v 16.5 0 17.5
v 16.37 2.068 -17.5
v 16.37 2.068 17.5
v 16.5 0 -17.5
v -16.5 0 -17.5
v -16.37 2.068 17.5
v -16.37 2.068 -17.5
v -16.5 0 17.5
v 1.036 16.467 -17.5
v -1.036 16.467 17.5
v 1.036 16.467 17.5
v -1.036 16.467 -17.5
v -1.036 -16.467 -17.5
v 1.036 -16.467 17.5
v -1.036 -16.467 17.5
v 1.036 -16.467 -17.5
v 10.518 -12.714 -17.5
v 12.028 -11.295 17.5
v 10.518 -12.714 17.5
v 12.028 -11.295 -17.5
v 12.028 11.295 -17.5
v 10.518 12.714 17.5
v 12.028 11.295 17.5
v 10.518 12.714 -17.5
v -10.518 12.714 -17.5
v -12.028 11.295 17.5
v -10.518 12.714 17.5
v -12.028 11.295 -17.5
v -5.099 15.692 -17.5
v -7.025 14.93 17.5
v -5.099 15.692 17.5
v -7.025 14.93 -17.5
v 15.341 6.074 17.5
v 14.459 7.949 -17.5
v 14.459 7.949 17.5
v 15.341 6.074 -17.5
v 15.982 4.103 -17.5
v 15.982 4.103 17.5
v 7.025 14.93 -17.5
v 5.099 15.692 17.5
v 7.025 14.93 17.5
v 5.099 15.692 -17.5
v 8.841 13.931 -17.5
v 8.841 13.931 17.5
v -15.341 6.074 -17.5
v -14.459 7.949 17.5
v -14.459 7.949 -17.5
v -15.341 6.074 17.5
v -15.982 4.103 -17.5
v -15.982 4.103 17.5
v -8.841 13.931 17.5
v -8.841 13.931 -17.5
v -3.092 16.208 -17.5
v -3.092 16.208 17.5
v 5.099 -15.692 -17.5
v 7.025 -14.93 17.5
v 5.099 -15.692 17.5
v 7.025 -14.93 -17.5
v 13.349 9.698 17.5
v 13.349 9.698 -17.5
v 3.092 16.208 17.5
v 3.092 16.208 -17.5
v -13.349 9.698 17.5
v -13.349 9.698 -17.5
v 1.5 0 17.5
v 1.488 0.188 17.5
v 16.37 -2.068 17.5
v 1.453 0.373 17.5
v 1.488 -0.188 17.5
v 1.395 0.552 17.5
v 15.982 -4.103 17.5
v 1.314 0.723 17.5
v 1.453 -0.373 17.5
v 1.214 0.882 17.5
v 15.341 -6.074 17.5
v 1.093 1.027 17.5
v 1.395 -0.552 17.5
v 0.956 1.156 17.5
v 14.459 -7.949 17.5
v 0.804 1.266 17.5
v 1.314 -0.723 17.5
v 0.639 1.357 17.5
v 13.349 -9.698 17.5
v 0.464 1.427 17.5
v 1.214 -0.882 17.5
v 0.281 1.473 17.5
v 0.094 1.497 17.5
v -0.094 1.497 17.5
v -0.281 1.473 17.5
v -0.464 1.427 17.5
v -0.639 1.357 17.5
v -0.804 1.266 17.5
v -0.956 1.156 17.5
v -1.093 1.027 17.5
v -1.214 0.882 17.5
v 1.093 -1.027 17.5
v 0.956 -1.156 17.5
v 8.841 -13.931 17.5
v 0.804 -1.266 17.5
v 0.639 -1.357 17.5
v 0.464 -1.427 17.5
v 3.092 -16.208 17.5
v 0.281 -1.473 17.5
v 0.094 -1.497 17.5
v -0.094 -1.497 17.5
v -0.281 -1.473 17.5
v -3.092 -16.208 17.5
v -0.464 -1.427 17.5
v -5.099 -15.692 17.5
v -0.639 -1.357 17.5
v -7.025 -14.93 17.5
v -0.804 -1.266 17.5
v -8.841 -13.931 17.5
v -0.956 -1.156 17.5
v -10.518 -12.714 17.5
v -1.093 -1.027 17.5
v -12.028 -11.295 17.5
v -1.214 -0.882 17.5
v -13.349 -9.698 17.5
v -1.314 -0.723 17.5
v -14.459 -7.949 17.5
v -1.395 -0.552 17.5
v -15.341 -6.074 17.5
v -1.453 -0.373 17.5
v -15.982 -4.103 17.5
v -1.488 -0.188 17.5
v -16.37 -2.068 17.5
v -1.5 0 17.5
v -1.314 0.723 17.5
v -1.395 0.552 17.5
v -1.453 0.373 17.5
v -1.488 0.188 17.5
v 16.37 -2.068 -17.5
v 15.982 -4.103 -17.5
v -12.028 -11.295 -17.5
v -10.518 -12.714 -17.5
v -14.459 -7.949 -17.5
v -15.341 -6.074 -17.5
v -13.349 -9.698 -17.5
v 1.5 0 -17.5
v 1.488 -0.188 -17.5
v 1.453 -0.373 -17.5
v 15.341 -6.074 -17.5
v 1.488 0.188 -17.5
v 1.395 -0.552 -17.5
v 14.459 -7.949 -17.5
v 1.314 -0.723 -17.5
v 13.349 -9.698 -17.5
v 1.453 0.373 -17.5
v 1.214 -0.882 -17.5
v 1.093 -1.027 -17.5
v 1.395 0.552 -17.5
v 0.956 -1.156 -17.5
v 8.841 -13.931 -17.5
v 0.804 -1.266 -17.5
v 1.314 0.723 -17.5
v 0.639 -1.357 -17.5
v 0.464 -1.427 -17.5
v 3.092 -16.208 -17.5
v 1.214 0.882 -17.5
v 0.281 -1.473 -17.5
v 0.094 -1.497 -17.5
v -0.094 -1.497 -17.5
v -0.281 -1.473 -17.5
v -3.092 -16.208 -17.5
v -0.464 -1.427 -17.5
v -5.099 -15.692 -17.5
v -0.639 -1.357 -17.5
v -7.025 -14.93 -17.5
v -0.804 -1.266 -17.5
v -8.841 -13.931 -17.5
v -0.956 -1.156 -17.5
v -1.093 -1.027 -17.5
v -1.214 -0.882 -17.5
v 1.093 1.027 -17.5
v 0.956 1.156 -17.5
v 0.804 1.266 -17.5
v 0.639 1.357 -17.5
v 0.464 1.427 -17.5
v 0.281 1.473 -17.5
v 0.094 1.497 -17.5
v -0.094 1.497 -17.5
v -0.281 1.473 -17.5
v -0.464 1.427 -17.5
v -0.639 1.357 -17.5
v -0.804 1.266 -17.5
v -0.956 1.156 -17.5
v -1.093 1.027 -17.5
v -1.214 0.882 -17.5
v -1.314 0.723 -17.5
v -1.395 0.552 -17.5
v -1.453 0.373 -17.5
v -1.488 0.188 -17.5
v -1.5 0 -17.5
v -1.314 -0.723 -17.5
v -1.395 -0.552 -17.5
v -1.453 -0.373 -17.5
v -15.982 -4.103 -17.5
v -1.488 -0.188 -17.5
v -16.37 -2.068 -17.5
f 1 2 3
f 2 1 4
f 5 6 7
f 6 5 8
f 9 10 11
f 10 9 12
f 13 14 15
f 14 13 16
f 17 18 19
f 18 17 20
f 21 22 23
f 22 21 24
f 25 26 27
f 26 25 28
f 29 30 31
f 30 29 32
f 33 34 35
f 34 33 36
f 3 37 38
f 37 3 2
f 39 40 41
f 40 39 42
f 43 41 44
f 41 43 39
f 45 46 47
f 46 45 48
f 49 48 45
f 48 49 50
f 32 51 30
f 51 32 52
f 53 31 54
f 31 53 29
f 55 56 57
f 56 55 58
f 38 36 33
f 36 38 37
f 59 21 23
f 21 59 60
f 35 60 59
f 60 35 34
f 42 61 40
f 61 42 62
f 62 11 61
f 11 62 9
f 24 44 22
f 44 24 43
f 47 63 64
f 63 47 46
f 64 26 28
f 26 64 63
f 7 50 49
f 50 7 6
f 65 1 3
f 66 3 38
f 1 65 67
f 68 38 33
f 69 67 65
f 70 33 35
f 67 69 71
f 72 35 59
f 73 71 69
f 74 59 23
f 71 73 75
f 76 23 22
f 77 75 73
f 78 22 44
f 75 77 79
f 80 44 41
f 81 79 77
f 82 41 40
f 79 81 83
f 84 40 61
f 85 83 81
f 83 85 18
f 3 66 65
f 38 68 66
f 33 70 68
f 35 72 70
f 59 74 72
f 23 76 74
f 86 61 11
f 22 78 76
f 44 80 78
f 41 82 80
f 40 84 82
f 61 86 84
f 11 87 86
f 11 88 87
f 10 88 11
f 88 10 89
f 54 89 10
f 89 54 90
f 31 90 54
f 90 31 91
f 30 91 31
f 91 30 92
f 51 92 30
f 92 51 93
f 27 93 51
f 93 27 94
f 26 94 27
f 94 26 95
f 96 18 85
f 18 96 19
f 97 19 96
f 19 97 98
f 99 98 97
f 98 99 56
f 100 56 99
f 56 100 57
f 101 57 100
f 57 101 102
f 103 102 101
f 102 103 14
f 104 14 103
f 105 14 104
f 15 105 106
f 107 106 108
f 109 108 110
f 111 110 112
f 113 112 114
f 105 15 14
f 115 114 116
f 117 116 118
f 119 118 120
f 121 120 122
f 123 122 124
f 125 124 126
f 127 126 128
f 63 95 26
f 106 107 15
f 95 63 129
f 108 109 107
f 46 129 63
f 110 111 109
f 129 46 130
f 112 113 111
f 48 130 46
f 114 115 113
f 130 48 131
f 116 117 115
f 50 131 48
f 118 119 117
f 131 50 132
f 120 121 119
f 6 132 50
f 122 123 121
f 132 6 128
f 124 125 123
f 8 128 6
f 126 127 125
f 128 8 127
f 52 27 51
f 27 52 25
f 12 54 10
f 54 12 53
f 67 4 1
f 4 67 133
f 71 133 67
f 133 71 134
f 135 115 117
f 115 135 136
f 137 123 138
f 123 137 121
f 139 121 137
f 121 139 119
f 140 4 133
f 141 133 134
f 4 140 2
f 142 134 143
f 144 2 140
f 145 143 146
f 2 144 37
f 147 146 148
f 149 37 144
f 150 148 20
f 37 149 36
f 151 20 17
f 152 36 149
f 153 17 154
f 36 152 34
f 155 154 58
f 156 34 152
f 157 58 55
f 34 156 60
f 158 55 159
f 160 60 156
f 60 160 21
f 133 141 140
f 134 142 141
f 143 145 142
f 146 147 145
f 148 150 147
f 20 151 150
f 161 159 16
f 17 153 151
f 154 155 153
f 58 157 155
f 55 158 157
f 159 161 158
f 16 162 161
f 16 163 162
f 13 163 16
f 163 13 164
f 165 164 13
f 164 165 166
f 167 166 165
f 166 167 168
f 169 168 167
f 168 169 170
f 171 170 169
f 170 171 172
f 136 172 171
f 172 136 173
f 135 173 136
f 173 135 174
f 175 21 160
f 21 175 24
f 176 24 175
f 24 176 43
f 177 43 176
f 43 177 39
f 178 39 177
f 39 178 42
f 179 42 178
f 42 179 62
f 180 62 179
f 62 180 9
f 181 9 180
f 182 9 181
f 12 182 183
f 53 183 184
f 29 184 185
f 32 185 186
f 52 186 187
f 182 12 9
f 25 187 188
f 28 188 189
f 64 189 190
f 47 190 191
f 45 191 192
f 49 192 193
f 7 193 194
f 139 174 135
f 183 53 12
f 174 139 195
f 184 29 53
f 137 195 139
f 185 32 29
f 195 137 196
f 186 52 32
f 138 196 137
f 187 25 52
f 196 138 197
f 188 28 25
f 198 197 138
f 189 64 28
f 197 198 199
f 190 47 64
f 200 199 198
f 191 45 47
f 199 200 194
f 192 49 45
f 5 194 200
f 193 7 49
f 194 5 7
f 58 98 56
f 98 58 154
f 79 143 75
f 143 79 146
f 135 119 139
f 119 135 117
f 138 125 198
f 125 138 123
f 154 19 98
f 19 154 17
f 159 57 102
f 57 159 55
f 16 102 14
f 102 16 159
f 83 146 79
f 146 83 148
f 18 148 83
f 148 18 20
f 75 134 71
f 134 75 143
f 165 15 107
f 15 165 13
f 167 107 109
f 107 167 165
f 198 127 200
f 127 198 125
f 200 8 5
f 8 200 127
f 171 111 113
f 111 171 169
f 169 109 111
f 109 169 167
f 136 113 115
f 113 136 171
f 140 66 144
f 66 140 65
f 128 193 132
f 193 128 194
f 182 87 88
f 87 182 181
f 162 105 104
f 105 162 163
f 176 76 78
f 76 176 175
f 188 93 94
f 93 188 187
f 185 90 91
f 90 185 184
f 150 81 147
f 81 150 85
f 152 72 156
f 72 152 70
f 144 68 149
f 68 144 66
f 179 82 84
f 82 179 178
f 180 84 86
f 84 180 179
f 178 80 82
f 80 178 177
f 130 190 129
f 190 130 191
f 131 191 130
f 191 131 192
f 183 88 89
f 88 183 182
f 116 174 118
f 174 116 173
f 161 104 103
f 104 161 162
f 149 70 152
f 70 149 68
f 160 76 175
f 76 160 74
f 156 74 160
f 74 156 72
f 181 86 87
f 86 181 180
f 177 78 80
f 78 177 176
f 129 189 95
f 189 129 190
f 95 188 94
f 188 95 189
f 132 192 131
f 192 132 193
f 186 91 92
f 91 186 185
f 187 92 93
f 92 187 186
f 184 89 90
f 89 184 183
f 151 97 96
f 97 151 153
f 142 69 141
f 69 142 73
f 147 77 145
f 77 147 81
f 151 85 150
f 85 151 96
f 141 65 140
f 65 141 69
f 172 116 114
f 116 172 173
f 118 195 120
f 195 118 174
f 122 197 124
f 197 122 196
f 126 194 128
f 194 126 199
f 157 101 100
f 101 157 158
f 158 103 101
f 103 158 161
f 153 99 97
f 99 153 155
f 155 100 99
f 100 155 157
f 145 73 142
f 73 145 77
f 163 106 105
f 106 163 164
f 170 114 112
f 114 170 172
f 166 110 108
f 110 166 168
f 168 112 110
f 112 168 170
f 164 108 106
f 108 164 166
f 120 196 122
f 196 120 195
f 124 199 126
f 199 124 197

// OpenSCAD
$fn = 50;


difference() {
	union() {
		translate(v = [0, 0, -17.5000000000]) {
			cylinder(h = 35, r = 16.5000000000);
		}
	}
	union() {
		translate(v = [0, 0, -100.0000000000]) {
			cylinder(h = 200, r = 1.5000000000);
		}
	}
}
